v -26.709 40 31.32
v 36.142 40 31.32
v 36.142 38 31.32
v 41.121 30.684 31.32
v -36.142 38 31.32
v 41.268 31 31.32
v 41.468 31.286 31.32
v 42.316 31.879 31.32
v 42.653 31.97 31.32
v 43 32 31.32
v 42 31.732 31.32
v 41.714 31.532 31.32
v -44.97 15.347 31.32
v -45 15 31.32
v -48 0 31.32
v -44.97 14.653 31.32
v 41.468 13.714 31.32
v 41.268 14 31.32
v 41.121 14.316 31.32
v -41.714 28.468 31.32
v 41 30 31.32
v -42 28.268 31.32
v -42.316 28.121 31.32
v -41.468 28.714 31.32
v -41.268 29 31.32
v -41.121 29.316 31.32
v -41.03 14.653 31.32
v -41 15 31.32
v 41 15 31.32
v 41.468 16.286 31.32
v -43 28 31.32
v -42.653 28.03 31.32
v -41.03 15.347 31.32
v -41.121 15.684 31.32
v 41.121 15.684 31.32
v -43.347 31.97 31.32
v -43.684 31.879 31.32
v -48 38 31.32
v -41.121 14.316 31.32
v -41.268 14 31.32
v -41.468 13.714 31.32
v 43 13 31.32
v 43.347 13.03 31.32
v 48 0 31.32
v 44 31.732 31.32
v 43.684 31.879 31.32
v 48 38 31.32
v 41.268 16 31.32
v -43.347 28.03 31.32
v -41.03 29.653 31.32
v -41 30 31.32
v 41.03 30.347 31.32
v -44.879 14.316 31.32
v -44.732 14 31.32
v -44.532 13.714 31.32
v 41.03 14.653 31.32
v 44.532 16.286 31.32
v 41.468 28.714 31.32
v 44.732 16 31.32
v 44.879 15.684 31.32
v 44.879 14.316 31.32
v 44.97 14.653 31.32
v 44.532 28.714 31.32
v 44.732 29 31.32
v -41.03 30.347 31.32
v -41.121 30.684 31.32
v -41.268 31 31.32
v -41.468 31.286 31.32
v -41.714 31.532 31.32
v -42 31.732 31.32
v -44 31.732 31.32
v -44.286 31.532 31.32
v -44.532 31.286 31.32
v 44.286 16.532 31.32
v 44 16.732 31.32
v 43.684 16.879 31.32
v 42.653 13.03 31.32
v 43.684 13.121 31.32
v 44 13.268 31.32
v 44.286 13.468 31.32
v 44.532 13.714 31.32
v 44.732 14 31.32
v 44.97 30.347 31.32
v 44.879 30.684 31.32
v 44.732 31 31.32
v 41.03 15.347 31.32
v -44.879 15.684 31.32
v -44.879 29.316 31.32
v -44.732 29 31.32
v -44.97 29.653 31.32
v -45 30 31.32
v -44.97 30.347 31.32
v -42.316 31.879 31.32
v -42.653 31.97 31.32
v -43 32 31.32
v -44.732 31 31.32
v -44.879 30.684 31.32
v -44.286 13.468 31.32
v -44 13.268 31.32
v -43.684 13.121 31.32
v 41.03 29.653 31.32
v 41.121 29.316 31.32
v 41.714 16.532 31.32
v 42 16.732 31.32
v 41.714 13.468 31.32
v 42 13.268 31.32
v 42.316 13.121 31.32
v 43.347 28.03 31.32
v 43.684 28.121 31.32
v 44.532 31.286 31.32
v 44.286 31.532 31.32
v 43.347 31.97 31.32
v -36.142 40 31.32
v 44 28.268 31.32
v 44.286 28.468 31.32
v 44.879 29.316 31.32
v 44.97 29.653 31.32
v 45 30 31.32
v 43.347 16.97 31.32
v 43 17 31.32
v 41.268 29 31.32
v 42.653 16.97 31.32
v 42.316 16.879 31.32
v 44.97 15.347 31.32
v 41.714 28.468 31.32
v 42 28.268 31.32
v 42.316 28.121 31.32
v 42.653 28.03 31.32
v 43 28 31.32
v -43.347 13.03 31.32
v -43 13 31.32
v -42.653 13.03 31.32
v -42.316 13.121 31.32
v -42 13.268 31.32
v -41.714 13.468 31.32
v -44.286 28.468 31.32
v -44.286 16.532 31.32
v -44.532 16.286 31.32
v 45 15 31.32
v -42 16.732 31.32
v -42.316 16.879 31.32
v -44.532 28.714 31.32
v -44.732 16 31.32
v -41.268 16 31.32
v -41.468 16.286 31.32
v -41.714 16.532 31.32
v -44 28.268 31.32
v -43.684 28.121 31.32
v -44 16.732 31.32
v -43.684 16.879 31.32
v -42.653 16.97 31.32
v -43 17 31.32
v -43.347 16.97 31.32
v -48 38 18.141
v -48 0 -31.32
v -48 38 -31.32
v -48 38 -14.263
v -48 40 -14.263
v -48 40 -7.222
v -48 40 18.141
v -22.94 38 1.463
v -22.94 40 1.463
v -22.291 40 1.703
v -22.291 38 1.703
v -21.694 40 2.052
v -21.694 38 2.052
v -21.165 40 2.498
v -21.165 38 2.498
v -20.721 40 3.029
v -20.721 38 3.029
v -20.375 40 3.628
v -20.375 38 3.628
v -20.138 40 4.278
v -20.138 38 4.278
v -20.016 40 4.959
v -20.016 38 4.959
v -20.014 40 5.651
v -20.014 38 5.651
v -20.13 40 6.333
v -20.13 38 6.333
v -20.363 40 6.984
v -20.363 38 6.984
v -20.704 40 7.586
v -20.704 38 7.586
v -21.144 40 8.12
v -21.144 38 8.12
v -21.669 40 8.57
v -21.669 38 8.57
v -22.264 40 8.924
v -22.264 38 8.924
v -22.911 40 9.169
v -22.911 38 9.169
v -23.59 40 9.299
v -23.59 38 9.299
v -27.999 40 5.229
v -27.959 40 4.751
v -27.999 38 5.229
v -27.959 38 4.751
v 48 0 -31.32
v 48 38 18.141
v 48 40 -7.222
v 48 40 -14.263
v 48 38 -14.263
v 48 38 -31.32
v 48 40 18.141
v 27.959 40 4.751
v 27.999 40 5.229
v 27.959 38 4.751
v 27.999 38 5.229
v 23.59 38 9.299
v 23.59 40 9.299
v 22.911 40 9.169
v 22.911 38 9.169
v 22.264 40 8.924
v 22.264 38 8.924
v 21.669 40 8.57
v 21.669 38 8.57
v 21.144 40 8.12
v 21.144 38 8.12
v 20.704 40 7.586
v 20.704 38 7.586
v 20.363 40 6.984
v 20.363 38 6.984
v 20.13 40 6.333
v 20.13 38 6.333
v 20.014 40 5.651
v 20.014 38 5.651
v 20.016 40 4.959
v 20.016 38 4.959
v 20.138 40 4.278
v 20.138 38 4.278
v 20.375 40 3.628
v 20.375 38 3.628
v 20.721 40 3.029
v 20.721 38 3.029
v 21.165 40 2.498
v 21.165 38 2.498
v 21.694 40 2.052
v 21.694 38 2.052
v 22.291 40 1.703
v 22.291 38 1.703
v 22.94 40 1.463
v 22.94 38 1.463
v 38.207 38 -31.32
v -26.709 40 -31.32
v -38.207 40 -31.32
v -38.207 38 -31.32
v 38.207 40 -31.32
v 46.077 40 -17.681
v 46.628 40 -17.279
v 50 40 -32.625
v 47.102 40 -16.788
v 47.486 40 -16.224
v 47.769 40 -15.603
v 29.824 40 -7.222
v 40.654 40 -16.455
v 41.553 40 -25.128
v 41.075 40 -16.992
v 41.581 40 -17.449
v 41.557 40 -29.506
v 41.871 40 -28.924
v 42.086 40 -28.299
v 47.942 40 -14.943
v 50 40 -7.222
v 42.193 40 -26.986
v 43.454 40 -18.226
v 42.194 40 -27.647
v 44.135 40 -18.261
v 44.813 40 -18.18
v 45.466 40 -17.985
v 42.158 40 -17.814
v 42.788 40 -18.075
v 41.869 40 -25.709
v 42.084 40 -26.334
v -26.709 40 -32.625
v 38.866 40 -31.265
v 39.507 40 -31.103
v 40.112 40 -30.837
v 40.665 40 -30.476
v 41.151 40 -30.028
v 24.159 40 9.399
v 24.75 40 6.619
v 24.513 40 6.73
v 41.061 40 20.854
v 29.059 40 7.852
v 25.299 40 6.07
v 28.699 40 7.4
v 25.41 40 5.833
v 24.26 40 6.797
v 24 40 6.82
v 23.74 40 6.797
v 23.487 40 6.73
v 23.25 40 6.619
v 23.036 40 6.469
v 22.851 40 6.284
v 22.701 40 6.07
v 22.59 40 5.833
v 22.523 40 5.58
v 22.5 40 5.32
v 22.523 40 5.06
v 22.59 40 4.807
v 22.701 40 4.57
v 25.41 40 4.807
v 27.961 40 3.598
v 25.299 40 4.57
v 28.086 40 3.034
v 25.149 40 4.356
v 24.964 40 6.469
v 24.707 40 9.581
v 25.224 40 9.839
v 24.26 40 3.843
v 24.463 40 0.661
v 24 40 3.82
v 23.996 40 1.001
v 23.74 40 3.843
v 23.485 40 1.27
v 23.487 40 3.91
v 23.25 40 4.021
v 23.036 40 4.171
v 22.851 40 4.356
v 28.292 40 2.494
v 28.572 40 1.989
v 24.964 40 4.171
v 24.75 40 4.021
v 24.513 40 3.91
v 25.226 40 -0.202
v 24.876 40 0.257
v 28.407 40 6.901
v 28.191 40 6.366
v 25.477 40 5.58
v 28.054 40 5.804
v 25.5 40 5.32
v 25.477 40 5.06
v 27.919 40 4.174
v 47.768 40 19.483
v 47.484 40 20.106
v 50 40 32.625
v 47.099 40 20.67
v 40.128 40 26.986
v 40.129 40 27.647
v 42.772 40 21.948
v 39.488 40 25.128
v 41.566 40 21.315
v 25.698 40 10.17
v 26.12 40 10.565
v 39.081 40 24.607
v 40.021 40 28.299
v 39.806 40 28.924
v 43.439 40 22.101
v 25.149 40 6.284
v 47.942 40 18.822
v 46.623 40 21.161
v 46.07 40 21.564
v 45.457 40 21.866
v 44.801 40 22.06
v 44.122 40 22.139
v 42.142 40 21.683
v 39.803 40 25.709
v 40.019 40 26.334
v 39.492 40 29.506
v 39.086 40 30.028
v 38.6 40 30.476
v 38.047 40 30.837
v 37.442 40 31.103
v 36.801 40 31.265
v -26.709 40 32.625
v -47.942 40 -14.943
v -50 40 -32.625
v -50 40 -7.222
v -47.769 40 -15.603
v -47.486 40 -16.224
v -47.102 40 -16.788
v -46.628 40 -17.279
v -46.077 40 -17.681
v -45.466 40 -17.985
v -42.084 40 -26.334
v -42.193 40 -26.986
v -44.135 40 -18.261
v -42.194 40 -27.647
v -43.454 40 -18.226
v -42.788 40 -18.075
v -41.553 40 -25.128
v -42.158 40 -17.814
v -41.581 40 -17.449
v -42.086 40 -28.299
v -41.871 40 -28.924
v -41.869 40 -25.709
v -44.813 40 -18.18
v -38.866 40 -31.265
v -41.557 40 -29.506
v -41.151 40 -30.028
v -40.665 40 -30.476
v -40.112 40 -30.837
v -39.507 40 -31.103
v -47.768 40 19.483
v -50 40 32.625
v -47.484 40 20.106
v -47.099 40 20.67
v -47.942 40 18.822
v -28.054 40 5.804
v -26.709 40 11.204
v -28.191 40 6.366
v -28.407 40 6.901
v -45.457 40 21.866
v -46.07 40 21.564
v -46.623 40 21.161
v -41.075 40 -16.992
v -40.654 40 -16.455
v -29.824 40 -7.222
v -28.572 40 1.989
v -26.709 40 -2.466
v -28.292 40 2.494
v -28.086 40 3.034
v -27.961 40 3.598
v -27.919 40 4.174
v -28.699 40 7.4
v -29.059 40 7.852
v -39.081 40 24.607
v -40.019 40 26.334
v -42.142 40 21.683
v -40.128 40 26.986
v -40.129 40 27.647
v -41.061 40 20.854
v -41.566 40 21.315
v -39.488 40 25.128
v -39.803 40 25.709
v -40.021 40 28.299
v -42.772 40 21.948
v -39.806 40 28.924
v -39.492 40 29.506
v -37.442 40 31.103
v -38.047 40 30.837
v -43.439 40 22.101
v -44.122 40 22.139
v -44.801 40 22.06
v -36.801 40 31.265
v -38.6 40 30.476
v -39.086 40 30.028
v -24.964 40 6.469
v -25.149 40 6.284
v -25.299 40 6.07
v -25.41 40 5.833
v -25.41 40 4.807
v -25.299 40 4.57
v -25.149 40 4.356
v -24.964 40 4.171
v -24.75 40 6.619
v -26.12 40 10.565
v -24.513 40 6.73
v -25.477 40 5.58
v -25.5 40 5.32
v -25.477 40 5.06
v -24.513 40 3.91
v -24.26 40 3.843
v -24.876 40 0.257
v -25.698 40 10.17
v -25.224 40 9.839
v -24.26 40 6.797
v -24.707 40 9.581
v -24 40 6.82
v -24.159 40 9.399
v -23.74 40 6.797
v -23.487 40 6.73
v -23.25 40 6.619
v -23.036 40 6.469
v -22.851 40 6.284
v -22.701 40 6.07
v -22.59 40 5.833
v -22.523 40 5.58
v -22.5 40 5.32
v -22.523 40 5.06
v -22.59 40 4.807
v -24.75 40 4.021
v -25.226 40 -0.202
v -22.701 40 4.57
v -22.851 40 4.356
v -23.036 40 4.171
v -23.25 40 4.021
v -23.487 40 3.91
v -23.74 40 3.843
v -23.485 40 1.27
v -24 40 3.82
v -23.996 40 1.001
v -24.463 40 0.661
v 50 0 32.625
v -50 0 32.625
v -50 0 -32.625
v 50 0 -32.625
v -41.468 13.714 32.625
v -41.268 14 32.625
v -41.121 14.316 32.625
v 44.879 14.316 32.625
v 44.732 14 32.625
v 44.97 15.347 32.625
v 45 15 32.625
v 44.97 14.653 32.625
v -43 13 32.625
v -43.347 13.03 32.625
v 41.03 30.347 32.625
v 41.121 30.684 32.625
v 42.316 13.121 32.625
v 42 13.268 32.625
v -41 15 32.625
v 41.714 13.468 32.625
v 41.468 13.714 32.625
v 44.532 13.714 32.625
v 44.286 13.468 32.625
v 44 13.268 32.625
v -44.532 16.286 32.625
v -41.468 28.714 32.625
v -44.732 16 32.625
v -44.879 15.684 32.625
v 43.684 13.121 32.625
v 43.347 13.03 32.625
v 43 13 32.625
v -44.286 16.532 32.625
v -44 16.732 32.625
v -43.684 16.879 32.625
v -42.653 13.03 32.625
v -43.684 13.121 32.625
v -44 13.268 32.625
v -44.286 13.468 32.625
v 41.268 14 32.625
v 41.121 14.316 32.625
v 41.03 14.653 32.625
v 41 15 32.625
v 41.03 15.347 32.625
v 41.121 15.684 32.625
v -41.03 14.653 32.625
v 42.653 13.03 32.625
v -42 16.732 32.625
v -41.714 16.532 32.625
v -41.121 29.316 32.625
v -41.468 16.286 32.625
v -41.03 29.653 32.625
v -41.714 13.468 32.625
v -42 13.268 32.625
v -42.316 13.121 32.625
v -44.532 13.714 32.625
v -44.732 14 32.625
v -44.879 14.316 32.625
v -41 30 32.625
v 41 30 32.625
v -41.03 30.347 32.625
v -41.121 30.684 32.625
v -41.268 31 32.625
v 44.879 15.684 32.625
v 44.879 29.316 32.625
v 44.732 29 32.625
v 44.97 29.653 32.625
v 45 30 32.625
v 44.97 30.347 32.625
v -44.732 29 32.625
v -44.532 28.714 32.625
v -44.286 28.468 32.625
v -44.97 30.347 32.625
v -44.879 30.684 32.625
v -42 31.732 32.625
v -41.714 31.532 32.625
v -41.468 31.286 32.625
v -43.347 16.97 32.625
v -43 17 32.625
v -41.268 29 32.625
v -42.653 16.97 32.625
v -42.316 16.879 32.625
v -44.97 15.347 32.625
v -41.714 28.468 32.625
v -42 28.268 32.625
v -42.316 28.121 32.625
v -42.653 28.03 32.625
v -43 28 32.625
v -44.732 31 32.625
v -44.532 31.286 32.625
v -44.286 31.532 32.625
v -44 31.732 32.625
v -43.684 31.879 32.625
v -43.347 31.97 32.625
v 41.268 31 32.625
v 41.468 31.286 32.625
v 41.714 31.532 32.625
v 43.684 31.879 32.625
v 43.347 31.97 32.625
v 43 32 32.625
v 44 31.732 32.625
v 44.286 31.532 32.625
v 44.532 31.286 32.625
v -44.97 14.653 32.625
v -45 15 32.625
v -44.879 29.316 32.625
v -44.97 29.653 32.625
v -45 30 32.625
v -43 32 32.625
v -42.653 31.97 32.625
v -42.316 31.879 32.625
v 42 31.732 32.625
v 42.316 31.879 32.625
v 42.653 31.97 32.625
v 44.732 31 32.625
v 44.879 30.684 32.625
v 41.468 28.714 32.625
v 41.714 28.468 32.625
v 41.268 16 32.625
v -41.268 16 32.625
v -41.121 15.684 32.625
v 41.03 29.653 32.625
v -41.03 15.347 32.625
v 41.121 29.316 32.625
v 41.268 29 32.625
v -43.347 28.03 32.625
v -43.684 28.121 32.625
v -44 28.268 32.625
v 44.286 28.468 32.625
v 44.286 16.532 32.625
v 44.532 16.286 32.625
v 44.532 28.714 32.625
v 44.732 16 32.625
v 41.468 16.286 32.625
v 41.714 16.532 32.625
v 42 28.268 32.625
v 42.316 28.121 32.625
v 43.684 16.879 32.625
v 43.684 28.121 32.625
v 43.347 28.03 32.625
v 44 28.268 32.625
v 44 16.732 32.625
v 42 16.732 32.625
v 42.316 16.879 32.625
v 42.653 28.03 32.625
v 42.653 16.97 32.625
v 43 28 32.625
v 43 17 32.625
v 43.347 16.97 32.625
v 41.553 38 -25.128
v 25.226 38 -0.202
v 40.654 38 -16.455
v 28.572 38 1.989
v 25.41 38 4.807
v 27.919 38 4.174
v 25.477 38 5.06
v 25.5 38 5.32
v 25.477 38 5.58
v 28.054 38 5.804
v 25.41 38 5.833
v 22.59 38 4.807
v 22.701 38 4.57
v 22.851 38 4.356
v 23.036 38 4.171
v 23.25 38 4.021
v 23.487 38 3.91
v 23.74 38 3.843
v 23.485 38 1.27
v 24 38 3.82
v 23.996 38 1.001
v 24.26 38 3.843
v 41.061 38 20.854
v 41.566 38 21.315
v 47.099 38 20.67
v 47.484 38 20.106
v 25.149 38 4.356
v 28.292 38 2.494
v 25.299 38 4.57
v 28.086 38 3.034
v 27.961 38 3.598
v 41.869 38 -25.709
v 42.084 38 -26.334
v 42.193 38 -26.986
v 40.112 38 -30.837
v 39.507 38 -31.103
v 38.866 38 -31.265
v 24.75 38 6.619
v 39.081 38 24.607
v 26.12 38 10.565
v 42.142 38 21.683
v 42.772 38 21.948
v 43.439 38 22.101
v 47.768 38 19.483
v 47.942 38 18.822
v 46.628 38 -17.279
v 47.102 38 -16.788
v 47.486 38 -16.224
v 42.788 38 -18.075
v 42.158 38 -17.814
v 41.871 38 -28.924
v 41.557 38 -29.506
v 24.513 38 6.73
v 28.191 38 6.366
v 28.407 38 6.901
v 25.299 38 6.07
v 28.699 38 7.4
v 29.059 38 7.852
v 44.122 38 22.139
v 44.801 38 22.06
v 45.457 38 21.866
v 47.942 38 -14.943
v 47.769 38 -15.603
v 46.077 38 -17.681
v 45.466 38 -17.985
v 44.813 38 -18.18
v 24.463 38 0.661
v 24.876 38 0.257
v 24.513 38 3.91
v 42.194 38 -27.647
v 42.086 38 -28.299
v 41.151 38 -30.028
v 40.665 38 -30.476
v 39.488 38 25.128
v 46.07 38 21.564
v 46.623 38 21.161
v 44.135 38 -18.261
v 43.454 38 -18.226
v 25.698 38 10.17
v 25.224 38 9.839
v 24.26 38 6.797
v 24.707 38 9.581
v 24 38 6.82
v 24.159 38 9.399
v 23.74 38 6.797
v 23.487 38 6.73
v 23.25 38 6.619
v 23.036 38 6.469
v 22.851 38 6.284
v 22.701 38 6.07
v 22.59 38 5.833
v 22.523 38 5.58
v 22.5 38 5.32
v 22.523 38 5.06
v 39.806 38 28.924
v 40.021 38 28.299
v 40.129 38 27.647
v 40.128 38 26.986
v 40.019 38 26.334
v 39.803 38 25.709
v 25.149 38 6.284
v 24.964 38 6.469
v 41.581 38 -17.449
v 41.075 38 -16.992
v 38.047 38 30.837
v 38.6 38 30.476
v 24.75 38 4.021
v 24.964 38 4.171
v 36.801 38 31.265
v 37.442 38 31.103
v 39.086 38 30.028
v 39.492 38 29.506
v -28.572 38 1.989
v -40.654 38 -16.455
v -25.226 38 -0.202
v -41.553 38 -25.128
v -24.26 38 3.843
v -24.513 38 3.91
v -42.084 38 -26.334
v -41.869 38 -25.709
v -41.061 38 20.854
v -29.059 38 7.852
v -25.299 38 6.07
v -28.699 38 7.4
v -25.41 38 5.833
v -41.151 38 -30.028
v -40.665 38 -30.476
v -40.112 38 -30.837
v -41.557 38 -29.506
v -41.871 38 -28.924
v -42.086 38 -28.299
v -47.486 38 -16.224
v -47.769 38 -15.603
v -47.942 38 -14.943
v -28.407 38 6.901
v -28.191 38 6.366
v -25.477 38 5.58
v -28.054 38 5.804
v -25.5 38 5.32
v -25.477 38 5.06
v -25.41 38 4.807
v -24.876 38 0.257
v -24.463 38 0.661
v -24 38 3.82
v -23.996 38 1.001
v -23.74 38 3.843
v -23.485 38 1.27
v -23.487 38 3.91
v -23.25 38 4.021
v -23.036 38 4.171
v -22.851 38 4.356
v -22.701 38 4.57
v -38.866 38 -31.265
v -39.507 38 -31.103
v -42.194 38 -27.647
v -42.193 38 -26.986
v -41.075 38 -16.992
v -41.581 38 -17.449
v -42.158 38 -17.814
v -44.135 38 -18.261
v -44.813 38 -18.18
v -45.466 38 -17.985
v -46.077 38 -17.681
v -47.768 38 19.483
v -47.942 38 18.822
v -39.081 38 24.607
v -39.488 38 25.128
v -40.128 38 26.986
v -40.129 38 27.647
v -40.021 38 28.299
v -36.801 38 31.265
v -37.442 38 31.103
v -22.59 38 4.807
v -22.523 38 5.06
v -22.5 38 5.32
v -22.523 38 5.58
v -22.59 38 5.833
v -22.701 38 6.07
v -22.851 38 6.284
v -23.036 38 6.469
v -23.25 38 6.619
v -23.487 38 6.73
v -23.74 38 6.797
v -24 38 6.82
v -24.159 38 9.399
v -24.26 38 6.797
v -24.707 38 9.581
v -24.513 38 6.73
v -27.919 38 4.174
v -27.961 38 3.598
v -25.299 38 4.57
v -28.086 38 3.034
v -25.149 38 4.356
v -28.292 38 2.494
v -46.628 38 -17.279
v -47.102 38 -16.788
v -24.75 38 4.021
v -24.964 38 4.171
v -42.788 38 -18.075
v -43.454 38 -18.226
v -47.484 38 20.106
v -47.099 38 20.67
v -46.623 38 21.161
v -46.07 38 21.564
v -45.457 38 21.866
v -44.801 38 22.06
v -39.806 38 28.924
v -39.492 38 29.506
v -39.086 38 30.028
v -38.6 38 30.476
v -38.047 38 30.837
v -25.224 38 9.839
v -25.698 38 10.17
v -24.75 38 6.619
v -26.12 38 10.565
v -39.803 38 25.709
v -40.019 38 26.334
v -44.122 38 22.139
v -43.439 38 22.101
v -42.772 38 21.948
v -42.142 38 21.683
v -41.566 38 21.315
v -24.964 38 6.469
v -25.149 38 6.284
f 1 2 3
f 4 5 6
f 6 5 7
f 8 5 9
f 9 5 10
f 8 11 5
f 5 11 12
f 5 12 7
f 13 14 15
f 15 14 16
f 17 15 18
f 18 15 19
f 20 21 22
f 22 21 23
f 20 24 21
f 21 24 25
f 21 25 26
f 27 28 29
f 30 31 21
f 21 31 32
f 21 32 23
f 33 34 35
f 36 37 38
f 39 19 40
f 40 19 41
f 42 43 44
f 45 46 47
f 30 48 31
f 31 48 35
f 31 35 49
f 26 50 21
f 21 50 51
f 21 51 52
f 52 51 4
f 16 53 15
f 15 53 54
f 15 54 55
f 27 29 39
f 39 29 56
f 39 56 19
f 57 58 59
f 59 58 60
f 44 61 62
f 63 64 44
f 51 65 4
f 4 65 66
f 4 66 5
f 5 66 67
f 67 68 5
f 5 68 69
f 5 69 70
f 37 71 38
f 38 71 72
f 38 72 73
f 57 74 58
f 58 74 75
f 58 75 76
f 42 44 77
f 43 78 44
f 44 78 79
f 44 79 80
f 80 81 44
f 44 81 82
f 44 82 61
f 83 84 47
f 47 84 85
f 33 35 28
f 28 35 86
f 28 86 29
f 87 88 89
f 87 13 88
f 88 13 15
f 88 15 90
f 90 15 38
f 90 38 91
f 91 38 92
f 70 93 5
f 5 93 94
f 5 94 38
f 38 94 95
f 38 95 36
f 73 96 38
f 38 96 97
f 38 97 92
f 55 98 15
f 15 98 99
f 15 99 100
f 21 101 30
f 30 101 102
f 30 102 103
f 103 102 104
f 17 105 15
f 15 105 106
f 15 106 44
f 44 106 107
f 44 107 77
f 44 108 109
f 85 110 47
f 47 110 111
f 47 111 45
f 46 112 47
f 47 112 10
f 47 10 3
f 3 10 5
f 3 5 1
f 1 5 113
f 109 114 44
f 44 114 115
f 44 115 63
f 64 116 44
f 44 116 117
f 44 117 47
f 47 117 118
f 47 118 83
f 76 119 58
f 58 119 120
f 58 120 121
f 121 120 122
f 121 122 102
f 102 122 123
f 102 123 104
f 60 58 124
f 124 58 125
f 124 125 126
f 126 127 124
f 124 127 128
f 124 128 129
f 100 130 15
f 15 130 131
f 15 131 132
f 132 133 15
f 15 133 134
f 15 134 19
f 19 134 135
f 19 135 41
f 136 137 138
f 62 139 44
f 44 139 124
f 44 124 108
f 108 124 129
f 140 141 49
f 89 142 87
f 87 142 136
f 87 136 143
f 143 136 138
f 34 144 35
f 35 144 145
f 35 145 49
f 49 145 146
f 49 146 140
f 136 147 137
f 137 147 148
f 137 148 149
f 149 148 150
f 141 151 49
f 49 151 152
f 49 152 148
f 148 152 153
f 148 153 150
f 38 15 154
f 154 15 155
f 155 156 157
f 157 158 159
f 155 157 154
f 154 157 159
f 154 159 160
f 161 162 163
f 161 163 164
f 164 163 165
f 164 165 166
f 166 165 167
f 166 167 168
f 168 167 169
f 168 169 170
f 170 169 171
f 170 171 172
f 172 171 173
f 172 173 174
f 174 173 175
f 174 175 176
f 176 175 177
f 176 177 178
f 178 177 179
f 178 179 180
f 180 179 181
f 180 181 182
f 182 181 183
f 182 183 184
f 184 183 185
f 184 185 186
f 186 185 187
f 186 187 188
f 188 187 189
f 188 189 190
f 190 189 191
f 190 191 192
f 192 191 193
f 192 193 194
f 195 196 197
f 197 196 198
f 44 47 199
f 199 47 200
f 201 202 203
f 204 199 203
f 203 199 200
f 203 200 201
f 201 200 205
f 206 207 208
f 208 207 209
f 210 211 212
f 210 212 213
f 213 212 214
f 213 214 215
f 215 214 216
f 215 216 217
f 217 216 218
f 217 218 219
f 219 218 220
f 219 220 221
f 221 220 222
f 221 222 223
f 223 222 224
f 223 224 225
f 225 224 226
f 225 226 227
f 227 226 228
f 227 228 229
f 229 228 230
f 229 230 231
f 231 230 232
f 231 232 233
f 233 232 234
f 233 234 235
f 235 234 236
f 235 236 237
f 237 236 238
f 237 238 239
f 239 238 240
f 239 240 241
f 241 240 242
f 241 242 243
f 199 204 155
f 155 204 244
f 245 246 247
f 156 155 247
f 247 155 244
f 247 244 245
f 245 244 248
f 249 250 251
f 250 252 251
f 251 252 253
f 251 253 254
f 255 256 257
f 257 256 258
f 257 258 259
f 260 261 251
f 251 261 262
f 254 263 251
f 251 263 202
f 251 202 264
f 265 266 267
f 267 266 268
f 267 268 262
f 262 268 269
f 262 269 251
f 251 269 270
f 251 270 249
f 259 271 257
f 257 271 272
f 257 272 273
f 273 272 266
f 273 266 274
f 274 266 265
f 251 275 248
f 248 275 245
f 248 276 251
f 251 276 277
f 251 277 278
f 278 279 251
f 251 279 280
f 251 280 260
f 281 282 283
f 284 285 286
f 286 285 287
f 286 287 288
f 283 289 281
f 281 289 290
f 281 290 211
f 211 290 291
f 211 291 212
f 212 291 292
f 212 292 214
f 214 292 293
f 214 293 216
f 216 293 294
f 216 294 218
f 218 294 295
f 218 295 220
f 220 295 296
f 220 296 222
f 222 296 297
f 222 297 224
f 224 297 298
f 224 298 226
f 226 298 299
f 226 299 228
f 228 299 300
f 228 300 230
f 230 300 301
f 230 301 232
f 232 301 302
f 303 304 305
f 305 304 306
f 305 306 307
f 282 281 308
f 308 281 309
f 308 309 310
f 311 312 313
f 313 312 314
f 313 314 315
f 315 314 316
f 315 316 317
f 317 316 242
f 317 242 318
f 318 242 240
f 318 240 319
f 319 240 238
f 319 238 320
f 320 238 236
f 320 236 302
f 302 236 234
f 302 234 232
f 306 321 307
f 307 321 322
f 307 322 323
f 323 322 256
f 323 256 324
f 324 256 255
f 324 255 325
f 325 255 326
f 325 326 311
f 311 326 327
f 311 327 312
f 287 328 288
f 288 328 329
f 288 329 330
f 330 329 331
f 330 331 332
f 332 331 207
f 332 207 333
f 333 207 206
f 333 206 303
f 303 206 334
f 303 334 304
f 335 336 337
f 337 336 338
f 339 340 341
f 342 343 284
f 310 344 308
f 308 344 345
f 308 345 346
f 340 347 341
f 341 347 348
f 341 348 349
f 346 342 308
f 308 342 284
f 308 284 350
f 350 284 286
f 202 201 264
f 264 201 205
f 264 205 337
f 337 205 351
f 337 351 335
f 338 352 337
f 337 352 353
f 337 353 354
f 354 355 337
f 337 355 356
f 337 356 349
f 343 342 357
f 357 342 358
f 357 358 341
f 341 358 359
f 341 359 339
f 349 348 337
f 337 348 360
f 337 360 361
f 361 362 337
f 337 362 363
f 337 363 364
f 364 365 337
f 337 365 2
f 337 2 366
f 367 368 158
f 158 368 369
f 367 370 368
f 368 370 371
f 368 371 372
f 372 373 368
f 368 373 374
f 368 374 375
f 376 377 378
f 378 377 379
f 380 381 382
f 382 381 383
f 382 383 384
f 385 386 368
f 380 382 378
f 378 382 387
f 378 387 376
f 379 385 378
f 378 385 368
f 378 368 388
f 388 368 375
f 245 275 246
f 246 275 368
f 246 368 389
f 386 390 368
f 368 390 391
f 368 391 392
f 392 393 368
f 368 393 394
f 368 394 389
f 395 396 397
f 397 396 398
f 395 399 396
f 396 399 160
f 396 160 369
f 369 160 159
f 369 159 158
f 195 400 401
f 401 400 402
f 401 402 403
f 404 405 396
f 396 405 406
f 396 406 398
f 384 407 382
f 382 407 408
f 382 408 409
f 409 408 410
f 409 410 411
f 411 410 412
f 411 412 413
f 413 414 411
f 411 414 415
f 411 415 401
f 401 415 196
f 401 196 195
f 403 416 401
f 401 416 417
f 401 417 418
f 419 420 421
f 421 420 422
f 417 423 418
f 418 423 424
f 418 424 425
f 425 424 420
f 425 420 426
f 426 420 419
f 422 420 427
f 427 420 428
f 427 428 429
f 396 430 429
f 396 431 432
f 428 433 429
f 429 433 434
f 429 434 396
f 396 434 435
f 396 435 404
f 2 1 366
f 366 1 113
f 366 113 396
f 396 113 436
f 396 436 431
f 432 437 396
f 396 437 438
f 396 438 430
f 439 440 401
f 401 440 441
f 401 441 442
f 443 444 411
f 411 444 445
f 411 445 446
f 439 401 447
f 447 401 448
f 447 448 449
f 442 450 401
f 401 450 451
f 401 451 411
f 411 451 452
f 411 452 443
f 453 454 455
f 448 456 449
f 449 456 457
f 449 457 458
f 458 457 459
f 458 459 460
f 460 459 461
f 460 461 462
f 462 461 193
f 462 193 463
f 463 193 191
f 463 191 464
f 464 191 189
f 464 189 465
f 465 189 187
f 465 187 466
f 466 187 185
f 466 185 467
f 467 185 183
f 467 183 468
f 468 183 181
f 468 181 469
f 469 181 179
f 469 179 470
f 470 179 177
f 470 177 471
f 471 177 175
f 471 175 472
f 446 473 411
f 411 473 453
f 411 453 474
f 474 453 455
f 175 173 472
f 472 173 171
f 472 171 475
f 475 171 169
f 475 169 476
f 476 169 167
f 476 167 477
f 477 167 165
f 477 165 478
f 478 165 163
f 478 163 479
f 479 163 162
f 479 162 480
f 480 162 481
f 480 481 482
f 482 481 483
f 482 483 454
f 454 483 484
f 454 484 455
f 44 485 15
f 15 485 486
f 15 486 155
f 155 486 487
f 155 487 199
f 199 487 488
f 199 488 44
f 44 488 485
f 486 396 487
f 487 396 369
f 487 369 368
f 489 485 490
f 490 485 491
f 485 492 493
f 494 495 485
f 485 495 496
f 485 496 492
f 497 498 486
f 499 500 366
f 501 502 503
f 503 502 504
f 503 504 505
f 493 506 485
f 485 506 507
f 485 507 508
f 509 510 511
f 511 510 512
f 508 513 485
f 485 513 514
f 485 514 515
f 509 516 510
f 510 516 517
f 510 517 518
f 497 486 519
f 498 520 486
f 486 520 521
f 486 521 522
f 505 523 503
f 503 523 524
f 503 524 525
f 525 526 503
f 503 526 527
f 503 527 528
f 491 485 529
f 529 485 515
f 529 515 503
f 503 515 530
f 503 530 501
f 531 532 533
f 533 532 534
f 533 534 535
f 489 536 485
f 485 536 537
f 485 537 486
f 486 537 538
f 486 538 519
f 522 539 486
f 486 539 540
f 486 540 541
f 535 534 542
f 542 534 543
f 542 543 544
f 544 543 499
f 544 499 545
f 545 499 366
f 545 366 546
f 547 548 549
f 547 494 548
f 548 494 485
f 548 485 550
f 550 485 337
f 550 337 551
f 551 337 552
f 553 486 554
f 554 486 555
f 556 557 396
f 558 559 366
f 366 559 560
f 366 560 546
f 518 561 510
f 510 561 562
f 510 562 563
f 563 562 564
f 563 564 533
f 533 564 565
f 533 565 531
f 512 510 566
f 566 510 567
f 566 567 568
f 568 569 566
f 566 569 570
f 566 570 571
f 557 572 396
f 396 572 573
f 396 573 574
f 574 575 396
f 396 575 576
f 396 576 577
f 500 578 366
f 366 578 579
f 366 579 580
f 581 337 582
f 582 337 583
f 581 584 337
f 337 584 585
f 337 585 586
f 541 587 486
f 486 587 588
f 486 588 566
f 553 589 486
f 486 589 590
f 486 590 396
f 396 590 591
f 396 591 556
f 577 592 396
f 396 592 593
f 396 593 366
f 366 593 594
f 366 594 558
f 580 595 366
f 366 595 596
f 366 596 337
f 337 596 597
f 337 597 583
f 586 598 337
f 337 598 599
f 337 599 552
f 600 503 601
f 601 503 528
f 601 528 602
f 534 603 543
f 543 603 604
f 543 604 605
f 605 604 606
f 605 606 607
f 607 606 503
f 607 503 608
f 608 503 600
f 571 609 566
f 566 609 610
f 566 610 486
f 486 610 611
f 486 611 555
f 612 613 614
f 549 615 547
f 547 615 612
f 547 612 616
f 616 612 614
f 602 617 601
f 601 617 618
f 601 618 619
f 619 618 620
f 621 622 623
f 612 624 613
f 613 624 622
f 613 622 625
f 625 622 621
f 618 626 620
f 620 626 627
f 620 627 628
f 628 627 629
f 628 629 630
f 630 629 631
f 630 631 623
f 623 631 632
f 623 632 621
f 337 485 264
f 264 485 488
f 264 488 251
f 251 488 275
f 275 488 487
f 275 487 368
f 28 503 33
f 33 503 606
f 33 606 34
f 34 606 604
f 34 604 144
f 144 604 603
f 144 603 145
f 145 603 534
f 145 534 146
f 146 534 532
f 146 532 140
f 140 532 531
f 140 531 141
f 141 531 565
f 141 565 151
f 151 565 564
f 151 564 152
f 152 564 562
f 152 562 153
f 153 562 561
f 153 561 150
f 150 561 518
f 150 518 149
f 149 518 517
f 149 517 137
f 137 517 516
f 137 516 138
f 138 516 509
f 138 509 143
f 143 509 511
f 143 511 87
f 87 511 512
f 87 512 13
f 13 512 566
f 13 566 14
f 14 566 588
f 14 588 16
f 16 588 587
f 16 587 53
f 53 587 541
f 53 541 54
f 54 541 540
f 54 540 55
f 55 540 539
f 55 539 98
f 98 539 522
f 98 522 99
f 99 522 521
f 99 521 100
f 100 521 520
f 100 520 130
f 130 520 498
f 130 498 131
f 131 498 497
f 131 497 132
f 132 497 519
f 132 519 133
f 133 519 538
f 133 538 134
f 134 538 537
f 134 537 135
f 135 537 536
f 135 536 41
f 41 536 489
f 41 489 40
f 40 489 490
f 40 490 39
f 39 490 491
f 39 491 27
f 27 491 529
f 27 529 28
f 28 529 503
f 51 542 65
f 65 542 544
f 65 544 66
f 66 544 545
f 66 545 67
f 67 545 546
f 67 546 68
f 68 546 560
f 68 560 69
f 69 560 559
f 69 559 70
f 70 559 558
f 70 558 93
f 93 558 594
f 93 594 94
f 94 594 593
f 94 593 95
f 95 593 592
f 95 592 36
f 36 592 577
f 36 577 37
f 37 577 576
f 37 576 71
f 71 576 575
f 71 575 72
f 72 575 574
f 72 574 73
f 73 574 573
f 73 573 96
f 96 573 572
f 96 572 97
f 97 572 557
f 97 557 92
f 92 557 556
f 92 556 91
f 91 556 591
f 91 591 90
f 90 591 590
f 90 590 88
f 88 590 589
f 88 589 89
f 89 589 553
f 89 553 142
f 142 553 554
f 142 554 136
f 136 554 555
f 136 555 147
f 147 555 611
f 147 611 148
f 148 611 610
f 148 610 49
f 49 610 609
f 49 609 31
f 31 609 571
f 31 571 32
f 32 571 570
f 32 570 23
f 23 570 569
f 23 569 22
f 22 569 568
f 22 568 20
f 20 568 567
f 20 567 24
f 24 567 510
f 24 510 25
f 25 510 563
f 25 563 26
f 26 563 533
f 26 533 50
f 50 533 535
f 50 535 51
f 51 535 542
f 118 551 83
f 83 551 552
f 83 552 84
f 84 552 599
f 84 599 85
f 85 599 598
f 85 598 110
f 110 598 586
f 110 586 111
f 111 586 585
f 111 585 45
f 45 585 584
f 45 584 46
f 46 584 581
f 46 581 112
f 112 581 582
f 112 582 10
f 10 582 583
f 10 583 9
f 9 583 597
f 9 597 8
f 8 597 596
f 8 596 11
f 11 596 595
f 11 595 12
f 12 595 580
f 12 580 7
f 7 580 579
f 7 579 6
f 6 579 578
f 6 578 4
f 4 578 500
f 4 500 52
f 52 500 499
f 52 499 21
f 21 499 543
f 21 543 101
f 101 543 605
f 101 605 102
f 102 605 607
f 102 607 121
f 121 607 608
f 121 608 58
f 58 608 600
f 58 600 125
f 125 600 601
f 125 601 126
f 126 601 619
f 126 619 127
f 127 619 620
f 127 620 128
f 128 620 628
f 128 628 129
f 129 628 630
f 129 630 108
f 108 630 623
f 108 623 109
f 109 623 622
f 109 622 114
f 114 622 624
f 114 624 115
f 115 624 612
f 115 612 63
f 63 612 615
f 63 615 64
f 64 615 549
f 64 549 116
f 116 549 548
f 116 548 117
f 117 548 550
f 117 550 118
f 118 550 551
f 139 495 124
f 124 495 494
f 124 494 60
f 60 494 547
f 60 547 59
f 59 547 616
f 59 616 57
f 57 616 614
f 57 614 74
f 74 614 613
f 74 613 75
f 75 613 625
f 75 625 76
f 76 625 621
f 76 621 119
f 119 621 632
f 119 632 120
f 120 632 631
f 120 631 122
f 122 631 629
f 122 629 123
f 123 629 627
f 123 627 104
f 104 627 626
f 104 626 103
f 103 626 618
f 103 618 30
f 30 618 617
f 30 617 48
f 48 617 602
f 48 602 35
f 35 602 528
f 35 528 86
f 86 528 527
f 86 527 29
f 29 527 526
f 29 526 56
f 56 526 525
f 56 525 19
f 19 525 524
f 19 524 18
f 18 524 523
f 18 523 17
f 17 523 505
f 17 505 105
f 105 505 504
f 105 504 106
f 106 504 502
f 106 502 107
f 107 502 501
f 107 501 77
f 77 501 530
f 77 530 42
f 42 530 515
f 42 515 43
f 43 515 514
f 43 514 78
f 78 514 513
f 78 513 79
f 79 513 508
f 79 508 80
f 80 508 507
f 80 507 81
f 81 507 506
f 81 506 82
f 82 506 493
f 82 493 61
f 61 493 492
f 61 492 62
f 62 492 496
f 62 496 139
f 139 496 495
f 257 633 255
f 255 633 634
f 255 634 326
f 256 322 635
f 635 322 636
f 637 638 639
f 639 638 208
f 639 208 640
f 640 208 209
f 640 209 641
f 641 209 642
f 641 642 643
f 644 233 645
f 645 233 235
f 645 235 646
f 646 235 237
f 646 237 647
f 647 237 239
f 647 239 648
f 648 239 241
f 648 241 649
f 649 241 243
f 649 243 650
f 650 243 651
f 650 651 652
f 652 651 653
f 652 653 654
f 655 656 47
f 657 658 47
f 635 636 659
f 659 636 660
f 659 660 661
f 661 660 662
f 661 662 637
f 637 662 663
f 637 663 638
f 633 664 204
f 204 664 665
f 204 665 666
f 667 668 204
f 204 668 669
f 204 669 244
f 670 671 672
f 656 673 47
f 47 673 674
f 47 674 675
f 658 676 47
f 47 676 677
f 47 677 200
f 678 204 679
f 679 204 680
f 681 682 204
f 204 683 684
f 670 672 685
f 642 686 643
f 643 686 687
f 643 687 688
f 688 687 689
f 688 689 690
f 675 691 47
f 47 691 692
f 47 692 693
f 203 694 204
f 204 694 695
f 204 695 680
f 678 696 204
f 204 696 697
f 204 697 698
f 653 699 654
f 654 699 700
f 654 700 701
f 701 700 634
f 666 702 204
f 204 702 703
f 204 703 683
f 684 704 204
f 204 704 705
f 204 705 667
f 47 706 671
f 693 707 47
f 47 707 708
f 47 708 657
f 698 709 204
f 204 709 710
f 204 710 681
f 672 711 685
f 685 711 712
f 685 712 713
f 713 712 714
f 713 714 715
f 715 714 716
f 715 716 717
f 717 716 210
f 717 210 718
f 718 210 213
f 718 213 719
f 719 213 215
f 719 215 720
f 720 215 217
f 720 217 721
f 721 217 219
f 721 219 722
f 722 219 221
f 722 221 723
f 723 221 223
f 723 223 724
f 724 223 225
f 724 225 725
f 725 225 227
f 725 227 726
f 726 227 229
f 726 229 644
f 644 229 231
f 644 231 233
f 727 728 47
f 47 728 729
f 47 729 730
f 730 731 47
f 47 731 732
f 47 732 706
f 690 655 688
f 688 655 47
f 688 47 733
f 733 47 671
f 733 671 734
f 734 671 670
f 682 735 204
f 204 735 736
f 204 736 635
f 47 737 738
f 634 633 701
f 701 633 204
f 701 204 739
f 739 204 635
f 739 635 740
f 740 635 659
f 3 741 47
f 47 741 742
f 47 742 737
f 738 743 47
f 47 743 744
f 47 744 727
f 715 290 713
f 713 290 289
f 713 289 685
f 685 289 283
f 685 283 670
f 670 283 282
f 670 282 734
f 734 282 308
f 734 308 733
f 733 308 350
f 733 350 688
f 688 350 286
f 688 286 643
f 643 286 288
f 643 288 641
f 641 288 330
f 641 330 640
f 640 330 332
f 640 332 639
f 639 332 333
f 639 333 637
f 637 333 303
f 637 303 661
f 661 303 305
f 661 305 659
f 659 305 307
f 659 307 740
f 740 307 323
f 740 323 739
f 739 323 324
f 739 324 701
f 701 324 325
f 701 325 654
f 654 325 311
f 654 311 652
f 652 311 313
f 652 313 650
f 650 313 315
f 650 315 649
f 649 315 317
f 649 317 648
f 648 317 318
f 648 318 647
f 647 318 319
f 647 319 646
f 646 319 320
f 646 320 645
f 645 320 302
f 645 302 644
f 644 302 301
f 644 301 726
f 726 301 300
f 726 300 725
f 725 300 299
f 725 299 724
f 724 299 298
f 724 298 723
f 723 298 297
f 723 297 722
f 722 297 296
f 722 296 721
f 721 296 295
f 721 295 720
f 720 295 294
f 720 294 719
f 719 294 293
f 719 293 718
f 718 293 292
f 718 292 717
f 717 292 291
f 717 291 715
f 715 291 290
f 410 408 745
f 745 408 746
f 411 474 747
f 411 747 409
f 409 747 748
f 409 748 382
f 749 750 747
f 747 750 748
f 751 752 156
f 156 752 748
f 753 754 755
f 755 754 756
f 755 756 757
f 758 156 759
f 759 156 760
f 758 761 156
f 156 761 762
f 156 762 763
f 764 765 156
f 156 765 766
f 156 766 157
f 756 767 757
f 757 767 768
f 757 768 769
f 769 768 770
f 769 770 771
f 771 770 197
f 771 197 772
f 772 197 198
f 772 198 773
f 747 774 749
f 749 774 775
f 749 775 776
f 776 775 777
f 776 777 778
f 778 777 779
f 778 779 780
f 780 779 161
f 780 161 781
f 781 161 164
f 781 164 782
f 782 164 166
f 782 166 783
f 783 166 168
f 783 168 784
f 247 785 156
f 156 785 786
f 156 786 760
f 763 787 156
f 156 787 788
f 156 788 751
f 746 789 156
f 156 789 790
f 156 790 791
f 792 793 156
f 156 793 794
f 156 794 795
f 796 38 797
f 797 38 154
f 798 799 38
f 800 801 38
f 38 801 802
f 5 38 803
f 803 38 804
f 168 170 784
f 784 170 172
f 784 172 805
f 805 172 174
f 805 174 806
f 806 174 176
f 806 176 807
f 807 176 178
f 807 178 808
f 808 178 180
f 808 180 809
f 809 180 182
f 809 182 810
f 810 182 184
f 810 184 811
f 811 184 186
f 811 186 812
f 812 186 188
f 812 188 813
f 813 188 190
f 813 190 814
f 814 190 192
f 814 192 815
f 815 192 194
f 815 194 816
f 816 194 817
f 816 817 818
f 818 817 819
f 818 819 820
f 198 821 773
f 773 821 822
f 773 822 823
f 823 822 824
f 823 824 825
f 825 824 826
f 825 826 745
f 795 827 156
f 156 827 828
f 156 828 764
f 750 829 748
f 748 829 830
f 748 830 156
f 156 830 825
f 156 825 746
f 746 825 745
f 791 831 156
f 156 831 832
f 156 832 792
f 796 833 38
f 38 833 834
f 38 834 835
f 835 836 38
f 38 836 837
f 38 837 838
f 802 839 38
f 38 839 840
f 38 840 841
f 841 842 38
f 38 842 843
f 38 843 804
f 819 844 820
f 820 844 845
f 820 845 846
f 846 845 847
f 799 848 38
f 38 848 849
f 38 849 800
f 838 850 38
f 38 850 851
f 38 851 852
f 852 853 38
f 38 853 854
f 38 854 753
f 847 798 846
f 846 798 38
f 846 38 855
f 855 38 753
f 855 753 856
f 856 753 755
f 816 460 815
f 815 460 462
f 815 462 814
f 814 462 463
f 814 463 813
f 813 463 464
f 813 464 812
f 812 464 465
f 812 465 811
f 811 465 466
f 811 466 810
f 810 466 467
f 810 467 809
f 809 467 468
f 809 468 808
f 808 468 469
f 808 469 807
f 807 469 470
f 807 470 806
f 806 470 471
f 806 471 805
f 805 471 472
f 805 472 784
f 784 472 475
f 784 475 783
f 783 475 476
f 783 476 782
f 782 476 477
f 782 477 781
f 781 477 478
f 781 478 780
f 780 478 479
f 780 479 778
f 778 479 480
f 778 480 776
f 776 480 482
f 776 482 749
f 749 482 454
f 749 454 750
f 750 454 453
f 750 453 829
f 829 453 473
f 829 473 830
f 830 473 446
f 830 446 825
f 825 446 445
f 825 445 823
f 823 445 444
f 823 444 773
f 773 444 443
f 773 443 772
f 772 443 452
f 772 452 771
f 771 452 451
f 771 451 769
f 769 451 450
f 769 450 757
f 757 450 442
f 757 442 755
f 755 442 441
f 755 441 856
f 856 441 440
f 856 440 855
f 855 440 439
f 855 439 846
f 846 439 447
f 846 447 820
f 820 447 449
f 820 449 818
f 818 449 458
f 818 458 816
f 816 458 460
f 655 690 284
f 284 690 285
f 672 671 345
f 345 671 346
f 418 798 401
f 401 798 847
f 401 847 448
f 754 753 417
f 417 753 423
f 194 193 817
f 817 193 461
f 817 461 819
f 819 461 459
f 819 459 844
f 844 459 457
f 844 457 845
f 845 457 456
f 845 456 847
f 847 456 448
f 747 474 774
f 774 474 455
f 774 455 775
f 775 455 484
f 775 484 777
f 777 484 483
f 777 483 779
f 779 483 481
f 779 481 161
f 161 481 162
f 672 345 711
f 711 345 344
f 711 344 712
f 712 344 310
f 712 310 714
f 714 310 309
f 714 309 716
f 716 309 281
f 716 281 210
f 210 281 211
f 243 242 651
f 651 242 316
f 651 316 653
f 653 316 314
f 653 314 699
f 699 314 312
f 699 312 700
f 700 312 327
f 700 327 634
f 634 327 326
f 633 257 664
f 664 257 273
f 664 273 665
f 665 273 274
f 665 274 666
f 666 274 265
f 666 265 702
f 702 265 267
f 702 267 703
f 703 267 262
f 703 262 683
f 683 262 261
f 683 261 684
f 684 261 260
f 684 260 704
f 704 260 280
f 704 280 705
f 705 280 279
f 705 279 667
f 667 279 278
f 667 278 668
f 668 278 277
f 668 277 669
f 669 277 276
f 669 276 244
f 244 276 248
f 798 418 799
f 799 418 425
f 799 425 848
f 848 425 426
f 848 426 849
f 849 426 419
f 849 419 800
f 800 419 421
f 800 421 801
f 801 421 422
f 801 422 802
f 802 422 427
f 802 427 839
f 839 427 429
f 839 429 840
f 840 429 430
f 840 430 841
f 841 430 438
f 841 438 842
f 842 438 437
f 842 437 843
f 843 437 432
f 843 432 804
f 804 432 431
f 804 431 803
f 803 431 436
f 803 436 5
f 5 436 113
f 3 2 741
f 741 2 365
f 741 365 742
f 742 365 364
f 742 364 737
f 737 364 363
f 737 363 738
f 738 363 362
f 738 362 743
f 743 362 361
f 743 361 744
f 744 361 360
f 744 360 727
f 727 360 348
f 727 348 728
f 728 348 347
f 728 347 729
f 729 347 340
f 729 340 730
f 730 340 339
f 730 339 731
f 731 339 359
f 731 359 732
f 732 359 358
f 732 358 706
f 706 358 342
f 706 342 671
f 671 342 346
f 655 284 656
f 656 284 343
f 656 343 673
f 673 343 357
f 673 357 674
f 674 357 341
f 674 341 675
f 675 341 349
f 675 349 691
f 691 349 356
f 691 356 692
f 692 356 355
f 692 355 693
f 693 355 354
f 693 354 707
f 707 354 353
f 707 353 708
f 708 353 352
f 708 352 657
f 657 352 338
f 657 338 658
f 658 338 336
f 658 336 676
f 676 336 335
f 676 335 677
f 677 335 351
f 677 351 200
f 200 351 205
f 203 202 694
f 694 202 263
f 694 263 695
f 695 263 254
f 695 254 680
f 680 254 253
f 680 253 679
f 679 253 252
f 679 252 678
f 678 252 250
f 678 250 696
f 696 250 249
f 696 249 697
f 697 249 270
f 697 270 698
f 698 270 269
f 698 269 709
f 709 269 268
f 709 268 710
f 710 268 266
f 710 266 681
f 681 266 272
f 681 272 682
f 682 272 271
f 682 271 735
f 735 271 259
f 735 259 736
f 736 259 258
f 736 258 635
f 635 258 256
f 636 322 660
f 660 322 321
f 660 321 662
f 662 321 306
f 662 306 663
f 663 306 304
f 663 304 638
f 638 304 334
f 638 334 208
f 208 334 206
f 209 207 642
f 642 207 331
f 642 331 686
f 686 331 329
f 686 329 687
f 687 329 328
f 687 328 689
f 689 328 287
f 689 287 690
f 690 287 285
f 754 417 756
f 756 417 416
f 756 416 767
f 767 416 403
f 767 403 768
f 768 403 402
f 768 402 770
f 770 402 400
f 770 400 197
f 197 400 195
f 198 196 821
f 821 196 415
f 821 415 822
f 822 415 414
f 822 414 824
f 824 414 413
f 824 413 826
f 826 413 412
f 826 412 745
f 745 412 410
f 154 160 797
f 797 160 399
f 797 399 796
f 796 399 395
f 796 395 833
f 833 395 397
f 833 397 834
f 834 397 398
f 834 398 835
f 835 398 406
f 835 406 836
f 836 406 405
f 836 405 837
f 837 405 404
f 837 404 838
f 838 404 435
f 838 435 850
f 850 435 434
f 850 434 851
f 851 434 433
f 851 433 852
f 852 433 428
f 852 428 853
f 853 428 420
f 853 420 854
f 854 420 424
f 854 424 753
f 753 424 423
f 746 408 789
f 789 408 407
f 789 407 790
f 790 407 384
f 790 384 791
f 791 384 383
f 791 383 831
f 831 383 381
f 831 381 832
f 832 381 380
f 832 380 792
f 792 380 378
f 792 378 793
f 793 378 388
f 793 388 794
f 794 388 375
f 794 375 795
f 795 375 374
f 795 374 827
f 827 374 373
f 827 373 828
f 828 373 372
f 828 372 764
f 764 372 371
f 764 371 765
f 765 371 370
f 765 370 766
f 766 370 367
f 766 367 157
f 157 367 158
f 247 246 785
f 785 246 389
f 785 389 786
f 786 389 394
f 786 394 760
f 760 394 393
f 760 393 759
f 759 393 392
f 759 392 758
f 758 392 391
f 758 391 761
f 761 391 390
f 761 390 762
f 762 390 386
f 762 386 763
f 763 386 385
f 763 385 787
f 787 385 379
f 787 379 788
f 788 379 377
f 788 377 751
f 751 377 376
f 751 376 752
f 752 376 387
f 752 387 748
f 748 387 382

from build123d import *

# Parameters (mm, degrees)
SKETCH1_W             = 100
SKETCH1_H             = 65.25
SKETCH1_W_2           = 96
SKETCH1_H_2           = 62.64
BOSS_EXTRUDE1_DEPTH   = 40
CUT_EXTRUDE1_REACH    = 93.42
SKETCH2_R             = 2
SKETCH3_R             = 4
SKETCH3_R_2           = 1.5
BOSS_EXTRUDE2_DEPTH   = 2
BOSS_EXTRUDE2_2_DEPTH = 2
BOSS_EXTRUDE4_DEPTH   = 2
FILLET1_R             = 4


with BuildPart() as part:
    # Sketch1 → Boss-Extrude1 (new body)
    with BuildSketch(Plane(origin=(0, 0, 0), x_dir=(1, 0, 0), z_dir=(0, 1, 0))):
        Rectangle(SKETCH1_W, SKETCH1_H)
        Rectangle(SKETCH1_W_2, SKETCH1_H_2, mode=Mode.SUBTRACT)
    extrude(amount=BOSS_EXTRUDE1_DEPTH)

    # Sketch2 → Cut-Extrude1 (cut, up to next)
    with BuildSketch(Plane.XY.offset(32.625), mode=Mode.PRIVATE) as cut_extrude1_sk1:
        with Locations((-43, 15)):
            Circle(SKETCH2_R)
    cut_extrude1_tool1 = extrude(cut_extrude1_sk1.sketch, amount=-CUT_EXTRUDE1_REACH, mode=Mode.PRIVATE) & part.part
    # Sketch2 → Cut-Extrude1 (cut, up to next)
    with BuildSketch(Plane.XY.offset(32.625), mode=Mode.PRIVATE) as cut_extrude1_sk2:
        with Locations((-43, 30)):
            Circle(SKETCH2_R)
    cut_extrude1_tool2 = extrude(cut_extrude1_sk2.sketch, amount=-CUT_EXTRUDE1_REACH, mode=Mode.PRIVATE) & part.part
    # Sketch2 → Cut-Extrude1 (cut, up to next)
    with BuildSketch(Plane.XY.offset(32.625), mode=Mode.PRIVATE) as cut_extrude1_sk3:
        with Locations((43, 30)):
            Circle(SKETCH2_R)
    cut_extrude1_tool3 = extrude(cut_extrude1_sk3.sketch, amount=-CUT_EXTRUDE1_REACH, mode=Mode.PRIVATE) & part.part
    # Sketch2 → Cut-Extrude1 (cut, up to next)
    with BuildSketch(Plane.XY.offset(32.625), mode=Mode.PRIVATE) as cut_extrude1_sk4:
        with Locations((43, 15)):
            Circle(SKETCH2_R)
    cut_extrude1_tool4 = extrude(cut_extrude1_sk4.sketch, amount=-CUT_EXTRUDE1_REACH, mode=Mode.PRIVATE) & part.part
    add(cut_extrude1_tool1.solids().sort_by_distance((-43, 15, 32.625))[0], mode=Mode.SUBTRACT)
    add(cut_extrude1_tool2.solids().sort_by_distance((-43, 30, 32.625))[0], mode=Mode.SUBTRACT)
    add(cut_extrude1_tool3.solids().sort_by_distance((43, 30, 32.625))[0], mode=Mode.SUBTRACT)
    add(cut_extrude1_tool4.solids().sort_by_distance((43, 15, 32.625))[0], mode=Mode.SUBTRACT)



with BuildPart() as body_2:
    # Sketch3 → Boss-Extrude2 (new body)
    with BuildSketch(Plane(origin=(0, 40, 0), x_dir=(1, 0, 0), z_dir=(0, 1, 0))):
        with Locations(Location((-24, -5.32, 0), (0, 0, 270))):
            Circle(SKETCH3_R)
        with Locations(Location((-24, -5.32, 0), (0, 0, 270))):
            Circle(SKETCH3_R_2, mode=Mode.SUBTRACT)
    extrude(amount=-BOSS_EXTRUDE2_DEPTH)


with BuildPart() as body_3:
    # Sketch3 → Boss-Extrude2 2 (new body)
    with BuildSketch(Plane(origin=(0, 40, 0), x_dir=(1, 0, 0), z_dir=(0, 1, 0))):
        with Locations(Location((24, -5.32, 0), (0, 0, 270))):
            Circle(SKETCH3_R)
        with Locations(Location((24, -5.32, 0), (0, 0, 270))):
            Circle(SKETCH3_R_2, mode=Mode.SUBTRACT)
    extrude(amount=-BOSS_EXTRUDE2_2_DEPTH)


with BuildPart() as part_1:
    add(part.part)

    add(body_2.part)  # Boss-Extrude4 merges body 2

    add(body_3.part)  # Boss-Extrude4 merges body 3
    # Sketch4 → Boss-Extrude4 (add)
    with BuildSketch(Plane(origin=(0, 40, 0), x_dir=(-1, 0, 0), z_dir=(0, -1, 0))):
        with BuildLine():
            Line((-24.225075601, -1.326337399), (-45.609139399, 31.32))
            Line((-45.609139399, 31.32), (-48, 31.32))
            Line((-48, 31.32), (-48, 27.669952816))
            Line((-48, 27.669952816), (-27.571151067, -3.518089888))
            ThreePointArc((-27.571151067, -3.518089888), (-26.191752489, -1.973924534), (-24.225075601, -1.326337399))
        make_face()
        with BuildLine():
            Line((-27.819238089, -6.508873594), (-48, -28.371365665))
            Line((-48, -28.371365665), (-48, -31.32))
            Line((-48, -31.32), (-45.27818369, -31.32))
            Line((-45.27818369, -31.32), (-24.88002431, -9.221994005))
            ThreePointArc((-24.88002431, -9.221994005), (-26.713120411, -8.259213779), (-27.819238089, -6.508873594))
        make_face()
        with BuildLine():
            Line((24.225075601, -1.326337399), (45.609139399, 31.32))
            Line((45.609139399, 31.32), (48, 31.32))
            Line((48, 31.32), (48, 27.669952816))
            Line((48, 27.669952816), (27.571151067, -3.518089888))
            ThreePointArc((27.571151067, -3.518089888), (26.191752489, -1.973924534), (24.225075601, -1.326337399))
        make_face()
        with BuildLine():
            Line((48, -28.371365665), (48, -31.32))
            Line((48, -31.32), (45.27818369, -31.32))
            Line((45.27818369, -31.32), (24.88002431, -9.221994005))
            ThreePointArc((24.88002431, -9.221994005), (26.713120411, -8.259213779), (27.819238089, -6.508873594))
            Line((27.819238089, -6.508873594), (48, -28.371365665))
        make_face()
    extrude(amount=BOSS_EXTRUDE4_DEPTH)

    # Fillet1
    fillet1_edges = [part_1.edges().sort_by_distance(p)[0] for p in [
        (-24.88002431, 39, 9.221994005),
        (-27.819238089, 39, 6.508873594),
        (-48, 39, 28.371365665),
        (-45.27818369, 39, 31.32),
        (45.609139399, 39, -31.32),
        (24.225075601, 39, 1.326337399),
        (27.571151067, 39, 3.518089888),
        (48, 39, -27.669952816),
        (-27.571151067, 39, 3.518089888),
        (-24.225075601, 39, 1.326337399),
        (-45.609139399, 39, -31.32),
        (-48, 39, -27.669952816),
        (48, 39, 28.371365665),
        (27.819238089, 39, 6.508873594),
        (24.88002431, 39, 9.221994005),
        (45.27818369, 39, 31.32),
    ]]
    fillet(fillet1_edges, radius=FILLET1_R)


solid = part_1.part
